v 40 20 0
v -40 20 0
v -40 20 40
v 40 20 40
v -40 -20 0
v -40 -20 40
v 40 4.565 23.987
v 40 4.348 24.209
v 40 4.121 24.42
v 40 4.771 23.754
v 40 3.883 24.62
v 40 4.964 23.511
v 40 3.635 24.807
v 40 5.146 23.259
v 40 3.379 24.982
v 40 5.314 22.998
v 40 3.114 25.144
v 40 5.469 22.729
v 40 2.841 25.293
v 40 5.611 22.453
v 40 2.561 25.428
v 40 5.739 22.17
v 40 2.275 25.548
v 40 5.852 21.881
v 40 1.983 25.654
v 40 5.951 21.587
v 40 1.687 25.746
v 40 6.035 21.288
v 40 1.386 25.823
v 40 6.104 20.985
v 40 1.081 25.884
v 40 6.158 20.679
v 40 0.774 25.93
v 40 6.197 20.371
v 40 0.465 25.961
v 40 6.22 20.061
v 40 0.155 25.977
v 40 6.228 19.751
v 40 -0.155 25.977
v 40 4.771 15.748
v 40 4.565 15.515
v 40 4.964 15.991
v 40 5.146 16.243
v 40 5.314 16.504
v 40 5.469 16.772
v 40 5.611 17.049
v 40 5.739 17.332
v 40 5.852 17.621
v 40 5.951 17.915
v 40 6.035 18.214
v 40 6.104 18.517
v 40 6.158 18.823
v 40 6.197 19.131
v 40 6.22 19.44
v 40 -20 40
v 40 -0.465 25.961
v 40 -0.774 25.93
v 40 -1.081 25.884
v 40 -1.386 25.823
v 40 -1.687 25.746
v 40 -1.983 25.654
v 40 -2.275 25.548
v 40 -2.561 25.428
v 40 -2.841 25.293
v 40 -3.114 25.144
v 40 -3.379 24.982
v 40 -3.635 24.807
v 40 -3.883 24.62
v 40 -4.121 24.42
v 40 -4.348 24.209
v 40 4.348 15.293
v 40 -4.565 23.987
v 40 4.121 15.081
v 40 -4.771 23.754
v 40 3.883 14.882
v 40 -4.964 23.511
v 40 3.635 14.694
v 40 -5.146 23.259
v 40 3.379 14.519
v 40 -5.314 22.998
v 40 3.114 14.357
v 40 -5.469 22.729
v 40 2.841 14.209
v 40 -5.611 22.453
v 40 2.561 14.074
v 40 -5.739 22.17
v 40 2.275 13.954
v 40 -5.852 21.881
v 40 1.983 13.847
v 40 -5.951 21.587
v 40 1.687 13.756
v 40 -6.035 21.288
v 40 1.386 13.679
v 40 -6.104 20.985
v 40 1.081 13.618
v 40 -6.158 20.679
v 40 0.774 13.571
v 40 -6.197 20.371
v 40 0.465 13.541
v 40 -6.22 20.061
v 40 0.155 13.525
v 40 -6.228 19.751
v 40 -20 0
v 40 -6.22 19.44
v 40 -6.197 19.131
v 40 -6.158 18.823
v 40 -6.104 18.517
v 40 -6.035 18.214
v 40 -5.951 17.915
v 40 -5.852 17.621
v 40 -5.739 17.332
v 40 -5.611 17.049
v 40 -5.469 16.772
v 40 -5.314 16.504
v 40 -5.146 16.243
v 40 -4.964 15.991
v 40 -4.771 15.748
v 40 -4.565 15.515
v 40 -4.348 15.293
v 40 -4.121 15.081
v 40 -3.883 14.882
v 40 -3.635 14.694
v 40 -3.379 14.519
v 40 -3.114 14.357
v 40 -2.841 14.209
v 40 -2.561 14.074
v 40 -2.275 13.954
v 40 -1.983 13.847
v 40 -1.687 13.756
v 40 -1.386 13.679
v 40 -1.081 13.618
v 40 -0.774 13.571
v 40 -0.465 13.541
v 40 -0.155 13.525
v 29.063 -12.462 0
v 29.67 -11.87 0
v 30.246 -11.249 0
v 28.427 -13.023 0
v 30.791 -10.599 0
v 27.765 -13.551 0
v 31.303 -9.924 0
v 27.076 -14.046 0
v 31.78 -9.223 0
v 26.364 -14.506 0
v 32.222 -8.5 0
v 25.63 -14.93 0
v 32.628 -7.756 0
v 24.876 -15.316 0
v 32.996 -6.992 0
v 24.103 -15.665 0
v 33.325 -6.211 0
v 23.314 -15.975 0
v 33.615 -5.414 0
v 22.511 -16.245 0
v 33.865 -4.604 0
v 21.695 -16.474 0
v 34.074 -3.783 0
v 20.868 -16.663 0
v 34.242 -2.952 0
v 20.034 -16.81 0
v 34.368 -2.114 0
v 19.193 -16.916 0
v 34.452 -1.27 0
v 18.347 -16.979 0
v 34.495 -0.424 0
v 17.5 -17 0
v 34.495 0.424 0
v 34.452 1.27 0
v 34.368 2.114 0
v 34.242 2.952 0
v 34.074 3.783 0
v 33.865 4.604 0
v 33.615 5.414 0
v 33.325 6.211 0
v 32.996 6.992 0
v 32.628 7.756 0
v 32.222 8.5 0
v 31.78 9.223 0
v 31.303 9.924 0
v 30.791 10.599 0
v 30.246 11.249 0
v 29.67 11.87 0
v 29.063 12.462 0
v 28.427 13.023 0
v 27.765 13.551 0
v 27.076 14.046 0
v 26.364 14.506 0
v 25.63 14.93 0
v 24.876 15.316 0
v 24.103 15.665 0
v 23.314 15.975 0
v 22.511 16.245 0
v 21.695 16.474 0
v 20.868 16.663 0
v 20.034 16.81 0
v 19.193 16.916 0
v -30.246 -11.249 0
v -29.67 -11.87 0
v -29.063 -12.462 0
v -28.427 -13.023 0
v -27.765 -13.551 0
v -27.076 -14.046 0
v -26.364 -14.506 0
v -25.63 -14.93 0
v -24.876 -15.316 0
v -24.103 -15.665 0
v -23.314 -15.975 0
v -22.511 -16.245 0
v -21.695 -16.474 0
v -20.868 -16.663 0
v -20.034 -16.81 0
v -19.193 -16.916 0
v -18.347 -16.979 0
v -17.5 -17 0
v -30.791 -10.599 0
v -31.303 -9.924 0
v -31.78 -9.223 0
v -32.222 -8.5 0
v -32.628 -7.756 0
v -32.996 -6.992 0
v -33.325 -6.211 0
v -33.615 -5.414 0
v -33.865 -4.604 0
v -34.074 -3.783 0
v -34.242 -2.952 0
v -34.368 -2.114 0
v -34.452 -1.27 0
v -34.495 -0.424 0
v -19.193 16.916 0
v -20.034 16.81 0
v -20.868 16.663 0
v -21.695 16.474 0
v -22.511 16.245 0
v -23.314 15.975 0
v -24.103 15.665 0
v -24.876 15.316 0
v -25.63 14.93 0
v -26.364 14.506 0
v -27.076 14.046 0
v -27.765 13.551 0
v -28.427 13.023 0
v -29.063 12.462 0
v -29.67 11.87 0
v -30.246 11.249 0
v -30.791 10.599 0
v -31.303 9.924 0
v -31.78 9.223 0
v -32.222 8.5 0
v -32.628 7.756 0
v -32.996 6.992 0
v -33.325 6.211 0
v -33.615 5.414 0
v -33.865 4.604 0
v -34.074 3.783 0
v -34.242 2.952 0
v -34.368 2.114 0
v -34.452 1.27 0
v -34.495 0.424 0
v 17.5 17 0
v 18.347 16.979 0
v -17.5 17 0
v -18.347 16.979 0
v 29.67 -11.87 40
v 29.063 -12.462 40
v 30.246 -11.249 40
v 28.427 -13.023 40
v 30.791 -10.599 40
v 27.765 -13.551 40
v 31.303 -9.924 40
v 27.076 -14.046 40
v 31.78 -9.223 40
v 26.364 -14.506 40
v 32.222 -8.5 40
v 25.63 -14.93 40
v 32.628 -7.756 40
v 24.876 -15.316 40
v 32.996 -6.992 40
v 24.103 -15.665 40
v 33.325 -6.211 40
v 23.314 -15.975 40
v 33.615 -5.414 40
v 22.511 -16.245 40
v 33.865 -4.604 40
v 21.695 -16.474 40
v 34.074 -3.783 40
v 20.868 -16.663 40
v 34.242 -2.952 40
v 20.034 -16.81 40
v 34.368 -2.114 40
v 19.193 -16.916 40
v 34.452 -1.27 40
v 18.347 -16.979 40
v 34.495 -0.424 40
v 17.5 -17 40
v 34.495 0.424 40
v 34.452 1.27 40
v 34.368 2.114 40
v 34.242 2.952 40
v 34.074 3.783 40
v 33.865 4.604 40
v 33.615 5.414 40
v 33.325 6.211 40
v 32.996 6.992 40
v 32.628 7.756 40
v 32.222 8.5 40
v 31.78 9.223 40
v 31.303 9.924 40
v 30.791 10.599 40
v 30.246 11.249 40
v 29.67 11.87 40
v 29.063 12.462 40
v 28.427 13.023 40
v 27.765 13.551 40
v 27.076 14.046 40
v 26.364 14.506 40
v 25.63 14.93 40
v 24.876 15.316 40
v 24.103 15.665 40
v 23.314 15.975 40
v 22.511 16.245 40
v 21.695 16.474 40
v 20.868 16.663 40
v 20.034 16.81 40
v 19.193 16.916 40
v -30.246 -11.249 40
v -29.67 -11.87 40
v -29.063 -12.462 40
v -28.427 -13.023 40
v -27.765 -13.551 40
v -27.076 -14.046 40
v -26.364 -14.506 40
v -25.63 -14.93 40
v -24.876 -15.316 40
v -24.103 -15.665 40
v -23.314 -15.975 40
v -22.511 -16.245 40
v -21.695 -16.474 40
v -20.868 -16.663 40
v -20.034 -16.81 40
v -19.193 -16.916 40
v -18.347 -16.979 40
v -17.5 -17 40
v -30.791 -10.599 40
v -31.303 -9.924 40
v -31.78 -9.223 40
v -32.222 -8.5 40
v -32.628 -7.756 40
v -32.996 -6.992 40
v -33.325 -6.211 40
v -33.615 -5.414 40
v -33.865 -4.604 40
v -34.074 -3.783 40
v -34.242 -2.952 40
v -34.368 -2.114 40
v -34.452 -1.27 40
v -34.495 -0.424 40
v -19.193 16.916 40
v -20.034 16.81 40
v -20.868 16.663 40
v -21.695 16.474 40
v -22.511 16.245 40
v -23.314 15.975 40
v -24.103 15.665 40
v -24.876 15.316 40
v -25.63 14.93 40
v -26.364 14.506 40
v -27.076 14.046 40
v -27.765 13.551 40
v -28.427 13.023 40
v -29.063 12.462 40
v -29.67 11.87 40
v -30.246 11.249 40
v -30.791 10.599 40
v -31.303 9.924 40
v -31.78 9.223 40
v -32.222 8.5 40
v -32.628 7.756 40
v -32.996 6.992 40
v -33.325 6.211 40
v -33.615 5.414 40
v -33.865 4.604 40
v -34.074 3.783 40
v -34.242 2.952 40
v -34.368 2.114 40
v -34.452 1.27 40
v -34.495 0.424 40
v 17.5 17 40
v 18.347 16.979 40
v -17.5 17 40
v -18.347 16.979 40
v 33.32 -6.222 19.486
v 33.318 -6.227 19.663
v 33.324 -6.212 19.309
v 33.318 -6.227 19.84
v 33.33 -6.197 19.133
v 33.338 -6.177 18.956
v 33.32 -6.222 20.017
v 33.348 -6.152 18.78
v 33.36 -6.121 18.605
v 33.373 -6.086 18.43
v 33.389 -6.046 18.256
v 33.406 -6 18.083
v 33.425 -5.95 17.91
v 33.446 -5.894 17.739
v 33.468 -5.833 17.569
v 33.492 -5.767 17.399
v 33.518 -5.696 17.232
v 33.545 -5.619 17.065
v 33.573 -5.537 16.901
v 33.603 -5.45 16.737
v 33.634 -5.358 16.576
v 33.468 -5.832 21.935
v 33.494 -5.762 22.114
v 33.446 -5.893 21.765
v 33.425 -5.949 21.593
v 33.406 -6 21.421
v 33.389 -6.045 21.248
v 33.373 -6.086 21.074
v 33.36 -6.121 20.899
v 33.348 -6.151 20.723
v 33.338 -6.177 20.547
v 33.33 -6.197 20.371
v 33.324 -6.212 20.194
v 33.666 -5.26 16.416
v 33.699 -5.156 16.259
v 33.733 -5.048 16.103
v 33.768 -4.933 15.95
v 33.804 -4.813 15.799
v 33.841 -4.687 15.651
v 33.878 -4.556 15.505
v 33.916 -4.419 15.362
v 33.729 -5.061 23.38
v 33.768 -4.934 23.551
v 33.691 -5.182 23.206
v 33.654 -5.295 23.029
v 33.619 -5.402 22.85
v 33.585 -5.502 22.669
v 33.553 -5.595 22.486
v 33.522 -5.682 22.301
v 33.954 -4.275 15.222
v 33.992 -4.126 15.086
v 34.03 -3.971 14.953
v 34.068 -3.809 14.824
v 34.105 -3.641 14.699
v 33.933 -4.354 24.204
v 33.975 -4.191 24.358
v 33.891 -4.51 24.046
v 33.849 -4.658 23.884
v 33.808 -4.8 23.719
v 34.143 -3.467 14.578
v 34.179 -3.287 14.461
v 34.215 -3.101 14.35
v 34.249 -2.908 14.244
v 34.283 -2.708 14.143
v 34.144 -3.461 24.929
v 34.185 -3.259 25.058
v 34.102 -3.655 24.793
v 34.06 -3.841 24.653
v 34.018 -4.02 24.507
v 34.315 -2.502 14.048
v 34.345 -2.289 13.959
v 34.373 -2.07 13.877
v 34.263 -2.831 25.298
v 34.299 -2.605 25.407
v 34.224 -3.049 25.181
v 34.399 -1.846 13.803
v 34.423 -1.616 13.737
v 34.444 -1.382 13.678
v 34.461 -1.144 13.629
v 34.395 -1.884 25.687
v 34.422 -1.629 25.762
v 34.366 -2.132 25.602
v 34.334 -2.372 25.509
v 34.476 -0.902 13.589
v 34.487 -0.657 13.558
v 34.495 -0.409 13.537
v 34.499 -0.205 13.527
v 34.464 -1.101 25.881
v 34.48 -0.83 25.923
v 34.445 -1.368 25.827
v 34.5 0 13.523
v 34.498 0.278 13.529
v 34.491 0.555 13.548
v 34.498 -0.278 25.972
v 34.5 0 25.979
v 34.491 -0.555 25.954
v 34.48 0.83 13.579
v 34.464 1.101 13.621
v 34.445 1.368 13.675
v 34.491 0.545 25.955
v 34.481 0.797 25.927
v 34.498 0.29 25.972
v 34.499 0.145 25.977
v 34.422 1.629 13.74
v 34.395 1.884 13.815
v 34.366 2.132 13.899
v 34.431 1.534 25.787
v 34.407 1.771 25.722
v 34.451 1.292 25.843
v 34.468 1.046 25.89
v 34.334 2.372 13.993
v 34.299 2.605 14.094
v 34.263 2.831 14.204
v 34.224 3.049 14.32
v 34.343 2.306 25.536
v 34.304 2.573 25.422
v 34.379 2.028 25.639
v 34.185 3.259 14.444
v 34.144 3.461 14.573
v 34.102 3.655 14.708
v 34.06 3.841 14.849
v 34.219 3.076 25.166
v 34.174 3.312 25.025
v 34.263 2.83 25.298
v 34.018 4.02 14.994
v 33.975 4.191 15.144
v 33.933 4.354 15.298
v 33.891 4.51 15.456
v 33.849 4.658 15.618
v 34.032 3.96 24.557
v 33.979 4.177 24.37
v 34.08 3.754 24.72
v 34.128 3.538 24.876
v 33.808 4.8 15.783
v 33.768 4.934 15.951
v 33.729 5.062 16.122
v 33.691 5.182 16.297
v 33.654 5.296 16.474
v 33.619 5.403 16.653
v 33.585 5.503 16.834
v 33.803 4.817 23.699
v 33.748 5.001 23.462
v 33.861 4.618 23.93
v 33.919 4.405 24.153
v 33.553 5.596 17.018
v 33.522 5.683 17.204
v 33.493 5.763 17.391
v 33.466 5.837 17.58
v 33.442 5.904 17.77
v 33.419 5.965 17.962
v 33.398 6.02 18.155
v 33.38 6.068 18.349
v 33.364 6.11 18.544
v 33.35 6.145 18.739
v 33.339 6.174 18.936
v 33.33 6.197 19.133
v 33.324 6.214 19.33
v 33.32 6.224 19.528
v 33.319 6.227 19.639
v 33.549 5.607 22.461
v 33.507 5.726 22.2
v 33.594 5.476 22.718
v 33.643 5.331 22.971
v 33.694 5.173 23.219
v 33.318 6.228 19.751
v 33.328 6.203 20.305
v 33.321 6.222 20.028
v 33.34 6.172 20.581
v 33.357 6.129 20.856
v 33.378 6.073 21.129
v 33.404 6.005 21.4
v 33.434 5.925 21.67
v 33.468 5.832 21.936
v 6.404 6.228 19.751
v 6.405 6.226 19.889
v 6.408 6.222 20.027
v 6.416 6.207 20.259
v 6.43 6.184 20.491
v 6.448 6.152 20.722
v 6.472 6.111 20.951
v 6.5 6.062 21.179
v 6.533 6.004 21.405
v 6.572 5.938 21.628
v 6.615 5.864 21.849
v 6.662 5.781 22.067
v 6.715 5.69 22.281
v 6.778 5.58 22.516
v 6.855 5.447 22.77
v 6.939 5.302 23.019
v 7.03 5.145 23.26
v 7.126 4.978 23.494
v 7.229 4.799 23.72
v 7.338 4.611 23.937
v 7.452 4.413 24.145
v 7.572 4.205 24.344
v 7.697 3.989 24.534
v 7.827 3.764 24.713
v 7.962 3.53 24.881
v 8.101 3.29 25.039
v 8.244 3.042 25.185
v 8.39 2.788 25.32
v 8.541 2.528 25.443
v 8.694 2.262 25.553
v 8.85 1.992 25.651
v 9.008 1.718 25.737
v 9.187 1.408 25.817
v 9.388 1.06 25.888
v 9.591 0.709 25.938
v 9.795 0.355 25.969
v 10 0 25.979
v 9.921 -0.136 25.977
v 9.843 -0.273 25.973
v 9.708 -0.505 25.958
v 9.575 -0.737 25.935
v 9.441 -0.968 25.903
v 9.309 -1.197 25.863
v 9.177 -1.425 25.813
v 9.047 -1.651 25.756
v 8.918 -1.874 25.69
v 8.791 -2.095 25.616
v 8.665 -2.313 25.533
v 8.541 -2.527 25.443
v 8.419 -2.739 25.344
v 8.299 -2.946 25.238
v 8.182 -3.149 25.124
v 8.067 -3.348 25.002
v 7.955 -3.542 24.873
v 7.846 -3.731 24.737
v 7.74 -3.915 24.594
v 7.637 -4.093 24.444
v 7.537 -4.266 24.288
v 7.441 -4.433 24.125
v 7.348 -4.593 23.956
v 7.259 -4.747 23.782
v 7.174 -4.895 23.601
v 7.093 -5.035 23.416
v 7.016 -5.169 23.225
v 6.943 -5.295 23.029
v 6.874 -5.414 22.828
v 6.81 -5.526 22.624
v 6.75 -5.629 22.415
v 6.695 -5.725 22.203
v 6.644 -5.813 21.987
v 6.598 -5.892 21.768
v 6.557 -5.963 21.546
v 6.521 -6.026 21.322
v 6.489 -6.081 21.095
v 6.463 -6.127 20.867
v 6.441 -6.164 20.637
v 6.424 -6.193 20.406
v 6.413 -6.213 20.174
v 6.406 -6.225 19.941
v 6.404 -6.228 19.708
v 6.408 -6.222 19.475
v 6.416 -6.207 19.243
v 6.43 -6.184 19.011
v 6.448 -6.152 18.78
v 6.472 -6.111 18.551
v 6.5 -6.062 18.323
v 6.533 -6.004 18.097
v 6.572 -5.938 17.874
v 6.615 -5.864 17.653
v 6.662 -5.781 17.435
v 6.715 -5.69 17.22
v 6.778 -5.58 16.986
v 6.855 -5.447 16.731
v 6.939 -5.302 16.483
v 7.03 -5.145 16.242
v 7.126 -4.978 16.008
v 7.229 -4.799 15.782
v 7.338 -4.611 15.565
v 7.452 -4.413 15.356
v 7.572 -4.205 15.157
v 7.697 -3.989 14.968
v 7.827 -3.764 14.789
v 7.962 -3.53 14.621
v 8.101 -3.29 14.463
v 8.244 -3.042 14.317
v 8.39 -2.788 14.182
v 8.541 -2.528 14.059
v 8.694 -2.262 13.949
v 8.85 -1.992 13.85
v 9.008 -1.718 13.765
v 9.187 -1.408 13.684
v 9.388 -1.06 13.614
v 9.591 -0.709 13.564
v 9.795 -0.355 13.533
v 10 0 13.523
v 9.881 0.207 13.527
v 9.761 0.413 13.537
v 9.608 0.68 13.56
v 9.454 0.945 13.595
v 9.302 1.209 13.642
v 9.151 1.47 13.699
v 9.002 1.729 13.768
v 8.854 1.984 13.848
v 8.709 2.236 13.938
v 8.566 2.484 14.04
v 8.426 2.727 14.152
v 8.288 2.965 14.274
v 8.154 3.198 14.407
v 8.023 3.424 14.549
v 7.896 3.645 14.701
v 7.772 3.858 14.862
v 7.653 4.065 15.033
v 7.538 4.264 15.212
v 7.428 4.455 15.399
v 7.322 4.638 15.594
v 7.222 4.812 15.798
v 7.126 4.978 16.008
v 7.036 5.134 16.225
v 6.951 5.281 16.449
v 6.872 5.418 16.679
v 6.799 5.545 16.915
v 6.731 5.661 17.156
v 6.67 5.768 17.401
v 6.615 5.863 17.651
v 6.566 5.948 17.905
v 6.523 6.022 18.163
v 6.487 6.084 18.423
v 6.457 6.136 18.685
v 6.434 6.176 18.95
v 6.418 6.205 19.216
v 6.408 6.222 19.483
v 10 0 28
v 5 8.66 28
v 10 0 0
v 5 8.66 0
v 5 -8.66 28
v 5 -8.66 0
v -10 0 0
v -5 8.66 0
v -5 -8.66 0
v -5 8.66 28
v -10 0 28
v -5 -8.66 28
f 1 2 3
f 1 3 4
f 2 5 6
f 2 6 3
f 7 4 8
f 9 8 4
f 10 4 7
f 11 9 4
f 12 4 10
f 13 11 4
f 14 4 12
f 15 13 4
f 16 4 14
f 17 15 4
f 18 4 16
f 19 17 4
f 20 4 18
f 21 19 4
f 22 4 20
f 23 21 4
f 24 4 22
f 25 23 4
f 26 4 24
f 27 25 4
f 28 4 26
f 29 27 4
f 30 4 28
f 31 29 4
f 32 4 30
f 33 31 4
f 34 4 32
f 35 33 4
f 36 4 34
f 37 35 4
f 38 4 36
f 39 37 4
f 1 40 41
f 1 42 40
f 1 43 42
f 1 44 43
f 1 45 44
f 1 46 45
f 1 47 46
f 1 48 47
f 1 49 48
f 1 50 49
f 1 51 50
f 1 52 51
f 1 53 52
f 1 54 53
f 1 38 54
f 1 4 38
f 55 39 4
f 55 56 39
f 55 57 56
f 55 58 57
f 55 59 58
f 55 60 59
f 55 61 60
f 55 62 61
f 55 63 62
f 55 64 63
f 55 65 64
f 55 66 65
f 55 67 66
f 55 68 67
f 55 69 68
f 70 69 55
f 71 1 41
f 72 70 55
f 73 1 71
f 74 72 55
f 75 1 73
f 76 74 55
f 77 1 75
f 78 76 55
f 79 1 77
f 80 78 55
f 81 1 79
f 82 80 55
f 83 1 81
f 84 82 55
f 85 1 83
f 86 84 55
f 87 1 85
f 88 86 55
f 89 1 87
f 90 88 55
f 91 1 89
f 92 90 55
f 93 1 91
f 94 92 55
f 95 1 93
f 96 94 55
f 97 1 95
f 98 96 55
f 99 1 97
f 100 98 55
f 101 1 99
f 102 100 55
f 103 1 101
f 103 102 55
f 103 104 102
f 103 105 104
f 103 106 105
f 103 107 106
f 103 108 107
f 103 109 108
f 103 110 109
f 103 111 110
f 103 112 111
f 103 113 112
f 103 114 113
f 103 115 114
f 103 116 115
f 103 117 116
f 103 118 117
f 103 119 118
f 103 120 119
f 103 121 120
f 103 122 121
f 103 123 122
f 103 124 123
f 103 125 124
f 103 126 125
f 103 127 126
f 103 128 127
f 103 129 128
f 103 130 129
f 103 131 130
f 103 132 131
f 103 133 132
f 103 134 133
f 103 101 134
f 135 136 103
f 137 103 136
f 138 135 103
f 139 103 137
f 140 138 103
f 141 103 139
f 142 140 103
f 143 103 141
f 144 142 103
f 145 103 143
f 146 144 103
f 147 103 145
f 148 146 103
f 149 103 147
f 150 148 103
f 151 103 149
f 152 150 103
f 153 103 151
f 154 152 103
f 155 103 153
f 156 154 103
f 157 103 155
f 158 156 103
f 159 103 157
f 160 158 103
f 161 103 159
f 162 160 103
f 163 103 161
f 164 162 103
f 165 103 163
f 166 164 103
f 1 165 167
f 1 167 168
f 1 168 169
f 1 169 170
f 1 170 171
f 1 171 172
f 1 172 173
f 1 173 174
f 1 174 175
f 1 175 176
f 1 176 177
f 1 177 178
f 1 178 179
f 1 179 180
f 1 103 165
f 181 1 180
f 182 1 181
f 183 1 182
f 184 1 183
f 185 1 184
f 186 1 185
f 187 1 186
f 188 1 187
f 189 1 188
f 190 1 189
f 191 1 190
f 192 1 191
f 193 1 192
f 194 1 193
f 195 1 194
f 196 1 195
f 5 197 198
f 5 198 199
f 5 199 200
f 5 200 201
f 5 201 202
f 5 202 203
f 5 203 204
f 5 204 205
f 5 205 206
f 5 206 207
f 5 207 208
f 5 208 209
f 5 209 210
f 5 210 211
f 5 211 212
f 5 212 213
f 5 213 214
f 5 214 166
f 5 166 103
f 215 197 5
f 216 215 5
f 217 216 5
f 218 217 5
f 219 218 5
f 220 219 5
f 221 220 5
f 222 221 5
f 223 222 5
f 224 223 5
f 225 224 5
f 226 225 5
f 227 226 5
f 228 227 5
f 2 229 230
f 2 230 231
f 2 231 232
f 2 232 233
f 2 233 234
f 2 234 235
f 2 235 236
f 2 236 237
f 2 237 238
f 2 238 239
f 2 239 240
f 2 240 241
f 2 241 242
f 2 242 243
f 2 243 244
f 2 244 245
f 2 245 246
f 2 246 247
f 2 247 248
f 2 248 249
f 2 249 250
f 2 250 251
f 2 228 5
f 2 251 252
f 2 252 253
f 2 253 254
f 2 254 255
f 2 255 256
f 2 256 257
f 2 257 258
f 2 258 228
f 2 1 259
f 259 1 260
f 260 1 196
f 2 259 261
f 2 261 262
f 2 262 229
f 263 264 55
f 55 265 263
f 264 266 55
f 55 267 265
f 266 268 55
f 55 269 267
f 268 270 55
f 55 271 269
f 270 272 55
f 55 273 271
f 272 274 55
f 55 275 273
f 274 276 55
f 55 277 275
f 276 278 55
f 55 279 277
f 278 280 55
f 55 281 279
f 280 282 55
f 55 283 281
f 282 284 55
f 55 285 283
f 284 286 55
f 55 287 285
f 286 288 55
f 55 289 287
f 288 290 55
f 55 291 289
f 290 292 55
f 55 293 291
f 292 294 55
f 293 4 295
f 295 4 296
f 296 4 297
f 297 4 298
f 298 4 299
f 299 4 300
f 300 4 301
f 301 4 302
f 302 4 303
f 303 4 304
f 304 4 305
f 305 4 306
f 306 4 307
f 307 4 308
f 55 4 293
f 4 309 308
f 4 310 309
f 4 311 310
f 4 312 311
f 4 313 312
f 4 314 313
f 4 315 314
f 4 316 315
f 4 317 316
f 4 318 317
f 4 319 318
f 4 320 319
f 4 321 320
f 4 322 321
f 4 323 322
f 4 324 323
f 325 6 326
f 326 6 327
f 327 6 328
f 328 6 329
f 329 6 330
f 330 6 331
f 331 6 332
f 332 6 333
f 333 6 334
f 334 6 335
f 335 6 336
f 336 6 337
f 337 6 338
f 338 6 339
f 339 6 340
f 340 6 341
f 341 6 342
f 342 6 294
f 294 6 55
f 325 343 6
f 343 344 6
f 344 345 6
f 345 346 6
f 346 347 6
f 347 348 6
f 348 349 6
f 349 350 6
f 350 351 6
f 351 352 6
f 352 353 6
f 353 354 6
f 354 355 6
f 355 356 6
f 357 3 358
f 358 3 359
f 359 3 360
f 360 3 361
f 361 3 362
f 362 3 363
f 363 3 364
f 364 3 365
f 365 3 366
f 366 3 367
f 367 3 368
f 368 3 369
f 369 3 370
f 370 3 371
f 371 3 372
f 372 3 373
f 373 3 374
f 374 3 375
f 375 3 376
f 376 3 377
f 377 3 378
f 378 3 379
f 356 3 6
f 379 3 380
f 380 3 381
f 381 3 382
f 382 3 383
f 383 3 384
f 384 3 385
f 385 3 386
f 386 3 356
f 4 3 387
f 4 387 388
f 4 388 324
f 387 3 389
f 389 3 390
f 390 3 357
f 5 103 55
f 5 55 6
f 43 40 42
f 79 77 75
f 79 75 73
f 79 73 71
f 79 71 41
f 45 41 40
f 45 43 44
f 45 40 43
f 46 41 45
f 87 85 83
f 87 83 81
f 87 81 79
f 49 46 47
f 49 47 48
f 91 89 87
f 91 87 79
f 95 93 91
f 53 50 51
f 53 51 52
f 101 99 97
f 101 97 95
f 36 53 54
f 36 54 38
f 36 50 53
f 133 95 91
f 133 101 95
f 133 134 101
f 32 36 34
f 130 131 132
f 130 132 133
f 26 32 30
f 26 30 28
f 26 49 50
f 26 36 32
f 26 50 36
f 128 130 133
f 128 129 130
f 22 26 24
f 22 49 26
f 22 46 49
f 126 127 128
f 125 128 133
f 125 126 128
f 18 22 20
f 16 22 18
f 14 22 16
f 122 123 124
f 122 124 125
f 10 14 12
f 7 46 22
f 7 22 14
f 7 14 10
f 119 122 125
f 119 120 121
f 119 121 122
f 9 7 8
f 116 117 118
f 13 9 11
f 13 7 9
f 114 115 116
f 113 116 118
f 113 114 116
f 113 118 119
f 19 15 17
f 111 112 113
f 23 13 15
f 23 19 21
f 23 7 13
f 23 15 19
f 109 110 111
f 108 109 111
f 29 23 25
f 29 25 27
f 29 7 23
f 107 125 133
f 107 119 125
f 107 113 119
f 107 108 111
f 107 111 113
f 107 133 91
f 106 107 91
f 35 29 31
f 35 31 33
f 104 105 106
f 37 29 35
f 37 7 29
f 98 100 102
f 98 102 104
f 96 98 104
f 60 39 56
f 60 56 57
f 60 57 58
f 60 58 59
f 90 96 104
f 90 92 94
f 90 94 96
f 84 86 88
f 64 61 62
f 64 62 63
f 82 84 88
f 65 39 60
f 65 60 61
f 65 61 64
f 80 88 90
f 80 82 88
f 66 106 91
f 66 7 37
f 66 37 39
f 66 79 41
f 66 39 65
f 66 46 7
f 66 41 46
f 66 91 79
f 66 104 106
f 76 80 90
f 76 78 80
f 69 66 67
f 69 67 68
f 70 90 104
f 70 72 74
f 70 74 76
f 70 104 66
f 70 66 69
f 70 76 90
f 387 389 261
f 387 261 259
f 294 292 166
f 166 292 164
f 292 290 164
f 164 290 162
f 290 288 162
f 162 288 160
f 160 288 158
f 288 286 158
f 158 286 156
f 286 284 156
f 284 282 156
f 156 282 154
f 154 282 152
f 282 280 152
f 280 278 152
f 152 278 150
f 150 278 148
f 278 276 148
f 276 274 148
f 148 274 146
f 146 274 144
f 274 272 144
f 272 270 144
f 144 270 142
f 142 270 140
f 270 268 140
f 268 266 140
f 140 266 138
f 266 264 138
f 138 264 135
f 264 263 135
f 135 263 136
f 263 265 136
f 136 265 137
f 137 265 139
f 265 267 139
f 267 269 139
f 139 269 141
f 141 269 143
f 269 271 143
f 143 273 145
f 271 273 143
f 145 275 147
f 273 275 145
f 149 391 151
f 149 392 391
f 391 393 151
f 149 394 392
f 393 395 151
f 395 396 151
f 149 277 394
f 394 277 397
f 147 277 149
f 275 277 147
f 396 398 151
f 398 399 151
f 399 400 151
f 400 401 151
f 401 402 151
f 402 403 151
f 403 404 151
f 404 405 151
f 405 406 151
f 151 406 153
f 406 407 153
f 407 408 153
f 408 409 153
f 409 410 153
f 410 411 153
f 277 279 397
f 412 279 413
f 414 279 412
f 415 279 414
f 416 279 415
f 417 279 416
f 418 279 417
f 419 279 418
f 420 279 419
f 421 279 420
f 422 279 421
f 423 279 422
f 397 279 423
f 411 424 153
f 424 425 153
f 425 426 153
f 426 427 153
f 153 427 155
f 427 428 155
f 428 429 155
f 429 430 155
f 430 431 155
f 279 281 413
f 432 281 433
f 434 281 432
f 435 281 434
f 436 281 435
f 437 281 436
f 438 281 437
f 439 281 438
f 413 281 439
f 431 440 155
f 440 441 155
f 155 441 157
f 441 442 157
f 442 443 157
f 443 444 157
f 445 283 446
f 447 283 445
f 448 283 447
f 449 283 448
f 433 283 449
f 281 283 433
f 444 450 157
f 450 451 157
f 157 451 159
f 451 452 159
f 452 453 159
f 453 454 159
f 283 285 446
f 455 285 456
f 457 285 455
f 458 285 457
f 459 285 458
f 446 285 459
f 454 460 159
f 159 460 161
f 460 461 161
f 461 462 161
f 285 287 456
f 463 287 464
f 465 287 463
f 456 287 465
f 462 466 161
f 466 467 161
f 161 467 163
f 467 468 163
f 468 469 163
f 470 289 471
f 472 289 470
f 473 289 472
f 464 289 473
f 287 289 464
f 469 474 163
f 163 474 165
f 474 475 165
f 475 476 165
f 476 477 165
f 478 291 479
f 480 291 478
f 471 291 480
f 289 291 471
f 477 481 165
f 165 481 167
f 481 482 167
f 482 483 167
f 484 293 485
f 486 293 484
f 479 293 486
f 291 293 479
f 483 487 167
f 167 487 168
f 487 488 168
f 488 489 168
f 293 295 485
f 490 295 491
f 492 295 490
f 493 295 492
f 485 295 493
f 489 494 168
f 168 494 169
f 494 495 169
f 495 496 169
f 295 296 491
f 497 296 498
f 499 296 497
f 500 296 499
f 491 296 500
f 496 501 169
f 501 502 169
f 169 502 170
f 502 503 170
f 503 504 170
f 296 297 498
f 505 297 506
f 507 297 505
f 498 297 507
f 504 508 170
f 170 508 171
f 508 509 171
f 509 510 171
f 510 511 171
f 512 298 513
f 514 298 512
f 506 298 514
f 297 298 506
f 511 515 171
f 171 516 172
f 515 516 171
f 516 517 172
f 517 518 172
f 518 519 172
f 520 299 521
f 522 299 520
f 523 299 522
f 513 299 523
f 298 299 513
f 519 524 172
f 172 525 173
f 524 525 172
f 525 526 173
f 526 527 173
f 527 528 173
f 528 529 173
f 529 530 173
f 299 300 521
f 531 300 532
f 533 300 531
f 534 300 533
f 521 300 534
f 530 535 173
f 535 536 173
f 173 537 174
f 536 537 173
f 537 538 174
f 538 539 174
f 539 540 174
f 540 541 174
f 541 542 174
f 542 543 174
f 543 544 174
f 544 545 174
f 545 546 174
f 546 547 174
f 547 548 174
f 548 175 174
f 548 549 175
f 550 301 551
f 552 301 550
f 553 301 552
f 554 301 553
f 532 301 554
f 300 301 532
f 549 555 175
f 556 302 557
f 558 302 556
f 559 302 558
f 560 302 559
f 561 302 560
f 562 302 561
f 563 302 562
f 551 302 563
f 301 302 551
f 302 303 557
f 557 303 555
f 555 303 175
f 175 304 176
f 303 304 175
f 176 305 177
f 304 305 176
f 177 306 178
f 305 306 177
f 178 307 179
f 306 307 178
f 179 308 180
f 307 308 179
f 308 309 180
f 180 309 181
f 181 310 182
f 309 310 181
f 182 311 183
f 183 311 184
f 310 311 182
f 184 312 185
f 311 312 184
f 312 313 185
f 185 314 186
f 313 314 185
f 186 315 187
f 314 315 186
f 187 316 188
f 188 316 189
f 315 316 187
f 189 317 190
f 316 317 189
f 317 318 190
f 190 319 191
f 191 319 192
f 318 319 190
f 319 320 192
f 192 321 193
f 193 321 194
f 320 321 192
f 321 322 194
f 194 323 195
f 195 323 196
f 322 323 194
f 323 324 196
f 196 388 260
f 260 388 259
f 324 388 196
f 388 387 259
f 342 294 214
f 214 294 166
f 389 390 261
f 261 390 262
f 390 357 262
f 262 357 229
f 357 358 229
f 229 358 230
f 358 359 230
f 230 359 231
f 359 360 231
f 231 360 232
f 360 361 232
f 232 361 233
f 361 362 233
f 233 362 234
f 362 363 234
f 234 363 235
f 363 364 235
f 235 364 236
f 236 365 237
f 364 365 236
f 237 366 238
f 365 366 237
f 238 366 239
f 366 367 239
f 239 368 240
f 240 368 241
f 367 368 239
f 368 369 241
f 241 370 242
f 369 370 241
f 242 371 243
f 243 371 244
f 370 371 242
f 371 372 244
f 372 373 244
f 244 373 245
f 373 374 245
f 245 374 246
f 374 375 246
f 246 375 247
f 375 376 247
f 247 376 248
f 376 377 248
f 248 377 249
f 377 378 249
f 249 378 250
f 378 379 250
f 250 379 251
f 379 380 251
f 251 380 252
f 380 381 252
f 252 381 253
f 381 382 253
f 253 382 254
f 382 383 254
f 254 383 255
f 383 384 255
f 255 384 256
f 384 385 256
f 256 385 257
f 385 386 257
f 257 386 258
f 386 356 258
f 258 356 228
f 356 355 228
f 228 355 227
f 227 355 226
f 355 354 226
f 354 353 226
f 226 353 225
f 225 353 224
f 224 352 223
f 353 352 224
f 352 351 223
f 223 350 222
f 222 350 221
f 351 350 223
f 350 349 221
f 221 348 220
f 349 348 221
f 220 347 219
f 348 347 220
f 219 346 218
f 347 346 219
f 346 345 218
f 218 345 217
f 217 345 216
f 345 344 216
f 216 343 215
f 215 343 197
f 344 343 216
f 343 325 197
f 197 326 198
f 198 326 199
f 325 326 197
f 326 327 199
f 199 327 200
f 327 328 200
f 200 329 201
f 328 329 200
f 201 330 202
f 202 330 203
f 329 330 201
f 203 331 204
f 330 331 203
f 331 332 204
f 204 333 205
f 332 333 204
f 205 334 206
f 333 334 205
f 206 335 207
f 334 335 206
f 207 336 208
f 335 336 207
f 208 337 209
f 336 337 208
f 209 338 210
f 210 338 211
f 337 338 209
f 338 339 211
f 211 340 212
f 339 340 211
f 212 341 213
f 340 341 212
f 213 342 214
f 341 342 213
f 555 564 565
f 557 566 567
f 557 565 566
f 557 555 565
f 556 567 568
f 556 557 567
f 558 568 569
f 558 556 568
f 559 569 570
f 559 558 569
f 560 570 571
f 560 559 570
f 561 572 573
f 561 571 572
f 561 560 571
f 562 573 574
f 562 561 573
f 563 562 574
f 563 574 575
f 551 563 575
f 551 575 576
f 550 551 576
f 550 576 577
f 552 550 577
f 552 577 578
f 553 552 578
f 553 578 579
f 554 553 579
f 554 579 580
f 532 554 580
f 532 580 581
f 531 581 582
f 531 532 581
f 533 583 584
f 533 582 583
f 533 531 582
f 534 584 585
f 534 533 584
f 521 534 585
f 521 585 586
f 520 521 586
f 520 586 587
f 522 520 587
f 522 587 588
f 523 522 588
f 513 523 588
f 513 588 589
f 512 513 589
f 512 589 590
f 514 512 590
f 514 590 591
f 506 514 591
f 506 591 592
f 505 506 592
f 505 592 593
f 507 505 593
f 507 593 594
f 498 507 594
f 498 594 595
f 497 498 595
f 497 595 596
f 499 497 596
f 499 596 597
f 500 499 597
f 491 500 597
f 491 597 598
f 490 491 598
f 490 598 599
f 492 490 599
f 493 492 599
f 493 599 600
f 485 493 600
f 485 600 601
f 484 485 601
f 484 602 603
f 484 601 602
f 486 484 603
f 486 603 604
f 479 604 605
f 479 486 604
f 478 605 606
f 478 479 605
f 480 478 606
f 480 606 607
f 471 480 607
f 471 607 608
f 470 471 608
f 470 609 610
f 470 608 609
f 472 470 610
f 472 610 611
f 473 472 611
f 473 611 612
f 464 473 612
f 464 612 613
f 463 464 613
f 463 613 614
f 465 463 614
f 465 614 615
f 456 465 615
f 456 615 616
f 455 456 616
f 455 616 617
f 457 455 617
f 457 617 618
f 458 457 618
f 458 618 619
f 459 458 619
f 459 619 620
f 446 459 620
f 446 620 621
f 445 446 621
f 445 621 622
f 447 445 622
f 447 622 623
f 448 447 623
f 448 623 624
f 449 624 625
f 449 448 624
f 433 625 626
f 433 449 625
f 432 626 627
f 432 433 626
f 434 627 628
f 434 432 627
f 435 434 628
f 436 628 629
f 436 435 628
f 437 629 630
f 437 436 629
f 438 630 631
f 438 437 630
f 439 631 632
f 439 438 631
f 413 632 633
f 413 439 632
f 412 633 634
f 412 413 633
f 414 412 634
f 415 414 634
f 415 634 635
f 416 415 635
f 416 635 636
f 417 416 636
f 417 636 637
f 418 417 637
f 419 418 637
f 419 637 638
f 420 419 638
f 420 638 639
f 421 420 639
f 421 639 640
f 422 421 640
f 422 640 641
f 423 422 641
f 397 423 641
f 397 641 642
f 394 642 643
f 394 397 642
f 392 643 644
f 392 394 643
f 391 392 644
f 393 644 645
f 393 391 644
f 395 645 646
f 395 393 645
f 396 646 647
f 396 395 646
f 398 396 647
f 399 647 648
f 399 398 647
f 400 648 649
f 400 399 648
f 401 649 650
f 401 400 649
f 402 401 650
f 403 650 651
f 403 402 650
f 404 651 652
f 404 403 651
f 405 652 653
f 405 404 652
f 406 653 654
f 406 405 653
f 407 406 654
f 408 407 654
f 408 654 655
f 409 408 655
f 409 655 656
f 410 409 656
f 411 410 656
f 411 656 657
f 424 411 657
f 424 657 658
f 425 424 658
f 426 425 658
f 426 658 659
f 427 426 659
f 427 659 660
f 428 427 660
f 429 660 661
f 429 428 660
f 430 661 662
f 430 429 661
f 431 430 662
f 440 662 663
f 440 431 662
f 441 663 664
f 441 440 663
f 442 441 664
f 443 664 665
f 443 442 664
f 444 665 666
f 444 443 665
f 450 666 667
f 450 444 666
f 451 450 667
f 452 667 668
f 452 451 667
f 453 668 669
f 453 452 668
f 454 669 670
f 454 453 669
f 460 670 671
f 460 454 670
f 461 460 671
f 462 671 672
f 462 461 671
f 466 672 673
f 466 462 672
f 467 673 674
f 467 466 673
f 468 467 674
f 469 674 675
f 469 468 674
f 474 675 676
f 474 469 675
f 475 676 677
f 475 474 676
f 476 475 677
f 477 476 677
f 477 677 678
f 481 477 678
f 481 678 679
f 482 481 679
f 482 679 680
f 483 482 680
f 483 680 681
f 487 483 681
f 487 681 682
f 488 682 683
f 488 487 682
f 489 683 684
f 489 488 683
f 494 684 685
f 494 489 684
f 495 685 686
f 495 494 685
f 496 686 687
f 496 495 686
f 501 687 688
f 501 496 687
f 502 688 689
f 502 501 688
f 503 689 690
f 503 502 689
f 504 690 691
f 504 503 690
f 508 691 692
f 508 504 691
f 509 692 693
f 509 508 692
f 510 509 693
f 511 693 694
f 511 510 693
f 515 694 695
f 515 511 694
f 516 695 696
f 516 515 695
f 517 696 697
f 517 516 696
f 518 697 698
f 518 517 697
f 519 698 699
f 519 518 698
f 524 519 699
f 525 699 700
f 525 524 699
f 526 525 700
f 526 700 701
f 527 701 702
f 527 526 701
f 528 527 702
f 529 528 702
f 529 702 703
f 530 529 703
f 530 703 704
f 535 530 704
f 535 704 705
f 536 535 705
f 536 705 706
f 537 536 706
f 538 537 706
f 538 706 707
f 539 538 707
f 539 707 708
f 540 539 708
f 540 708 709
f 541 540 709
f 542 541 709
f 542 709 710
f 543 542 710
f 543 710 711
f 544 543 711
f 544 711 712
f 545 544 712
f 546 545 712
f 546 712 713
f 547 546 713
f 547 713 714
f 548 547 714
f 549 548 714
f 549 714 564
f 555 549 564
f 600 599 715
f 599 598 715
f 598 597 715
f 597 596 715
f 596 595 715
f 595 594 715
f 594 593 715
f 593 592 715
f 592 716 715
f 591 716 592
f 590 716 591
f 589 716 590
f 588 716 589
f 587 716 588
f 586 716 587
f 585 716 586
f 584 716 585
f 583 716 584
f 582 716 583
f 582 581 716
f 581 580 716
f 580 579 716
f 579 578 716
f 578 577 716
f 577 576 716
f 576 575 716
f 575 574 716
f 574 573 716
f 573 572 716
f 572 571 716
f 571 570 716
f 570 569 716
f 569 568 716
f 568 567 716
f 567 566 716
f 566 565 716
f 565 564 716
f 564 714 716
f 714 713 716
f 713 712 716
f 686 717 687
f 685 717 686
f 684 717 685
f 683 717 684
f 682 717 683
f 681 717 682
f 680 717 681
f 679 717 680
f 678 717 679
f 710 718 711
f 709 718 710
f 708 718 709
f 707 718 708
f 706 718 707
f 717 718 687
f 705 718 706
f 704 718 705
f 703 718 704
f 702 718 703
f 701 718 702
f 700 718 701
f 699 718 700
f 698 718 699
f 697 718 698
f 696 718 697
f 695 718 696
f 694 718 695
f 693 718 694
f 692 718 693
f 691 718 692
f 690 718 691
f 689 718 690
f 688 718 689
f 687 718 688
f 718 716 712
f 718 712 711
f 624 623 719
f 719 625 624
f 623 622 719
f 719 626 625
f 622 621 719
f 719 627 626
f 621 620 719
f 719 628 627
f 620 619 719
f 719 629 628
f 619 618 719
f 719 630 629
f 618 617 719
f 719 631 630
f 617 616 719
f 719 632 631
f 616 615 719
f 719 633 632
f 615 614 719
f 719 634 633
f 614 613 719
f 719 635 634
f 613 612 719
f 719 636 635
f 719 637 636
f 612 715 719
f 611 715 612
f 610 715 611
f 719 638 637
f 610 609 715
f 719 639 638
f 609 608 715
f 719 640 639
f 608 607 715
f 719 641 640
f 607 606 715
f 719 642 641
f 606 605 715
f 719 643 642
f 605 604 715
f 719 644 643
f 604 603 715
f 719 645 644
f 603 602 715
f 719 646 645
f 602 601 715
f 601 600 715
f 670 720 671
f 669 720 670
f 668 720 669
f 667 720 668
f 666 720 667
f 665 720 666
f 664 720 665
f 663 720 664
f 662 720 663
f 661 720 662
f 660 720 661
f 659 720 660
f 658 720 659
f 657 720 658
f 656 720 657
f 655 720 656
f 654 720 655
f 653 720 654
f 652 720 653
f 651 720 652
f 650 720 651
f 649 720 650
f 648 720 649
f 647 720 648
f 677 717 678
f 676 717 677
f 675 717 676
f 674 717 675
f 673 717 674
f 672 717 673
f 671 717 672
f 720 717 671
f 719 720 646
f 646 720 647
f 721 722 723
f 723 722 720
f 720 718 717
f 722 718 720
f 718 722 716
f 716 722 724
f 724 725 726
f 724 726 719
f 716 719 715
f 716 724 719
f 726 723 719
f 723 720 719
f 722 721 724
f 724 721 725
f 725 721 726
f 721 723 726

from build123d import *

# Parameters (mm, degrees)
SKETCH_W     = 80
SKETCH_H     = 40
PAD_DEPTH    = 40
POCKET_DEPTH = 40.001
SKETCH002_R  = 6.227756
PAD001_DEPTH = 40
PAD002_DEPTH = 28


with BuildPart() as part:
    # Sketch → Pad (new body)
    with BuildSketch(Plane.XY):
        Rectangle(SKETCH_W, SKETCH_H)
    extrude(amount=PAD_DEPTH)

    # Sketch001 (on Face6 of Pad) → Pocket (cut, through all)
    with BuildSketch(Plane.XY.offset(40)):
        with BuildLine():
            ThreePointArc((-17.5, 17), (-34.5, 0), (-17.5, -17))
            Line((-17.5, -17), (17.5, -17))
            ThreePointArc((17.5, -17), (34.5, 0), (17.5, 17))
            Line((-17.5, 17), (17.5, 17))
        make_face()
    extrude(amount=-POCKET_DEPTH, mode=Mode.SUBTRACT)

    # Sketch002 (on Face3 of Pocket) → Pad001 (join)
    with BuildSketch(Plane.YZ.offset(40)):
        with Locations((0, 19.750887)):
            Circle(SKETCH002_R)
    extrude(amount=-PAD001_DEPTH)

    # Sketch003 → Pad002 (join)
    with BuildSketch(Plane.XY):
        Polygon((10, 0), (5, 8.660254), (-5, 8.660254), (-10, 0), (-5, -8.660254), (5, -8.660254), align=None)
    extrude(amount=PAD002_DEPTH)


solid = part.part
